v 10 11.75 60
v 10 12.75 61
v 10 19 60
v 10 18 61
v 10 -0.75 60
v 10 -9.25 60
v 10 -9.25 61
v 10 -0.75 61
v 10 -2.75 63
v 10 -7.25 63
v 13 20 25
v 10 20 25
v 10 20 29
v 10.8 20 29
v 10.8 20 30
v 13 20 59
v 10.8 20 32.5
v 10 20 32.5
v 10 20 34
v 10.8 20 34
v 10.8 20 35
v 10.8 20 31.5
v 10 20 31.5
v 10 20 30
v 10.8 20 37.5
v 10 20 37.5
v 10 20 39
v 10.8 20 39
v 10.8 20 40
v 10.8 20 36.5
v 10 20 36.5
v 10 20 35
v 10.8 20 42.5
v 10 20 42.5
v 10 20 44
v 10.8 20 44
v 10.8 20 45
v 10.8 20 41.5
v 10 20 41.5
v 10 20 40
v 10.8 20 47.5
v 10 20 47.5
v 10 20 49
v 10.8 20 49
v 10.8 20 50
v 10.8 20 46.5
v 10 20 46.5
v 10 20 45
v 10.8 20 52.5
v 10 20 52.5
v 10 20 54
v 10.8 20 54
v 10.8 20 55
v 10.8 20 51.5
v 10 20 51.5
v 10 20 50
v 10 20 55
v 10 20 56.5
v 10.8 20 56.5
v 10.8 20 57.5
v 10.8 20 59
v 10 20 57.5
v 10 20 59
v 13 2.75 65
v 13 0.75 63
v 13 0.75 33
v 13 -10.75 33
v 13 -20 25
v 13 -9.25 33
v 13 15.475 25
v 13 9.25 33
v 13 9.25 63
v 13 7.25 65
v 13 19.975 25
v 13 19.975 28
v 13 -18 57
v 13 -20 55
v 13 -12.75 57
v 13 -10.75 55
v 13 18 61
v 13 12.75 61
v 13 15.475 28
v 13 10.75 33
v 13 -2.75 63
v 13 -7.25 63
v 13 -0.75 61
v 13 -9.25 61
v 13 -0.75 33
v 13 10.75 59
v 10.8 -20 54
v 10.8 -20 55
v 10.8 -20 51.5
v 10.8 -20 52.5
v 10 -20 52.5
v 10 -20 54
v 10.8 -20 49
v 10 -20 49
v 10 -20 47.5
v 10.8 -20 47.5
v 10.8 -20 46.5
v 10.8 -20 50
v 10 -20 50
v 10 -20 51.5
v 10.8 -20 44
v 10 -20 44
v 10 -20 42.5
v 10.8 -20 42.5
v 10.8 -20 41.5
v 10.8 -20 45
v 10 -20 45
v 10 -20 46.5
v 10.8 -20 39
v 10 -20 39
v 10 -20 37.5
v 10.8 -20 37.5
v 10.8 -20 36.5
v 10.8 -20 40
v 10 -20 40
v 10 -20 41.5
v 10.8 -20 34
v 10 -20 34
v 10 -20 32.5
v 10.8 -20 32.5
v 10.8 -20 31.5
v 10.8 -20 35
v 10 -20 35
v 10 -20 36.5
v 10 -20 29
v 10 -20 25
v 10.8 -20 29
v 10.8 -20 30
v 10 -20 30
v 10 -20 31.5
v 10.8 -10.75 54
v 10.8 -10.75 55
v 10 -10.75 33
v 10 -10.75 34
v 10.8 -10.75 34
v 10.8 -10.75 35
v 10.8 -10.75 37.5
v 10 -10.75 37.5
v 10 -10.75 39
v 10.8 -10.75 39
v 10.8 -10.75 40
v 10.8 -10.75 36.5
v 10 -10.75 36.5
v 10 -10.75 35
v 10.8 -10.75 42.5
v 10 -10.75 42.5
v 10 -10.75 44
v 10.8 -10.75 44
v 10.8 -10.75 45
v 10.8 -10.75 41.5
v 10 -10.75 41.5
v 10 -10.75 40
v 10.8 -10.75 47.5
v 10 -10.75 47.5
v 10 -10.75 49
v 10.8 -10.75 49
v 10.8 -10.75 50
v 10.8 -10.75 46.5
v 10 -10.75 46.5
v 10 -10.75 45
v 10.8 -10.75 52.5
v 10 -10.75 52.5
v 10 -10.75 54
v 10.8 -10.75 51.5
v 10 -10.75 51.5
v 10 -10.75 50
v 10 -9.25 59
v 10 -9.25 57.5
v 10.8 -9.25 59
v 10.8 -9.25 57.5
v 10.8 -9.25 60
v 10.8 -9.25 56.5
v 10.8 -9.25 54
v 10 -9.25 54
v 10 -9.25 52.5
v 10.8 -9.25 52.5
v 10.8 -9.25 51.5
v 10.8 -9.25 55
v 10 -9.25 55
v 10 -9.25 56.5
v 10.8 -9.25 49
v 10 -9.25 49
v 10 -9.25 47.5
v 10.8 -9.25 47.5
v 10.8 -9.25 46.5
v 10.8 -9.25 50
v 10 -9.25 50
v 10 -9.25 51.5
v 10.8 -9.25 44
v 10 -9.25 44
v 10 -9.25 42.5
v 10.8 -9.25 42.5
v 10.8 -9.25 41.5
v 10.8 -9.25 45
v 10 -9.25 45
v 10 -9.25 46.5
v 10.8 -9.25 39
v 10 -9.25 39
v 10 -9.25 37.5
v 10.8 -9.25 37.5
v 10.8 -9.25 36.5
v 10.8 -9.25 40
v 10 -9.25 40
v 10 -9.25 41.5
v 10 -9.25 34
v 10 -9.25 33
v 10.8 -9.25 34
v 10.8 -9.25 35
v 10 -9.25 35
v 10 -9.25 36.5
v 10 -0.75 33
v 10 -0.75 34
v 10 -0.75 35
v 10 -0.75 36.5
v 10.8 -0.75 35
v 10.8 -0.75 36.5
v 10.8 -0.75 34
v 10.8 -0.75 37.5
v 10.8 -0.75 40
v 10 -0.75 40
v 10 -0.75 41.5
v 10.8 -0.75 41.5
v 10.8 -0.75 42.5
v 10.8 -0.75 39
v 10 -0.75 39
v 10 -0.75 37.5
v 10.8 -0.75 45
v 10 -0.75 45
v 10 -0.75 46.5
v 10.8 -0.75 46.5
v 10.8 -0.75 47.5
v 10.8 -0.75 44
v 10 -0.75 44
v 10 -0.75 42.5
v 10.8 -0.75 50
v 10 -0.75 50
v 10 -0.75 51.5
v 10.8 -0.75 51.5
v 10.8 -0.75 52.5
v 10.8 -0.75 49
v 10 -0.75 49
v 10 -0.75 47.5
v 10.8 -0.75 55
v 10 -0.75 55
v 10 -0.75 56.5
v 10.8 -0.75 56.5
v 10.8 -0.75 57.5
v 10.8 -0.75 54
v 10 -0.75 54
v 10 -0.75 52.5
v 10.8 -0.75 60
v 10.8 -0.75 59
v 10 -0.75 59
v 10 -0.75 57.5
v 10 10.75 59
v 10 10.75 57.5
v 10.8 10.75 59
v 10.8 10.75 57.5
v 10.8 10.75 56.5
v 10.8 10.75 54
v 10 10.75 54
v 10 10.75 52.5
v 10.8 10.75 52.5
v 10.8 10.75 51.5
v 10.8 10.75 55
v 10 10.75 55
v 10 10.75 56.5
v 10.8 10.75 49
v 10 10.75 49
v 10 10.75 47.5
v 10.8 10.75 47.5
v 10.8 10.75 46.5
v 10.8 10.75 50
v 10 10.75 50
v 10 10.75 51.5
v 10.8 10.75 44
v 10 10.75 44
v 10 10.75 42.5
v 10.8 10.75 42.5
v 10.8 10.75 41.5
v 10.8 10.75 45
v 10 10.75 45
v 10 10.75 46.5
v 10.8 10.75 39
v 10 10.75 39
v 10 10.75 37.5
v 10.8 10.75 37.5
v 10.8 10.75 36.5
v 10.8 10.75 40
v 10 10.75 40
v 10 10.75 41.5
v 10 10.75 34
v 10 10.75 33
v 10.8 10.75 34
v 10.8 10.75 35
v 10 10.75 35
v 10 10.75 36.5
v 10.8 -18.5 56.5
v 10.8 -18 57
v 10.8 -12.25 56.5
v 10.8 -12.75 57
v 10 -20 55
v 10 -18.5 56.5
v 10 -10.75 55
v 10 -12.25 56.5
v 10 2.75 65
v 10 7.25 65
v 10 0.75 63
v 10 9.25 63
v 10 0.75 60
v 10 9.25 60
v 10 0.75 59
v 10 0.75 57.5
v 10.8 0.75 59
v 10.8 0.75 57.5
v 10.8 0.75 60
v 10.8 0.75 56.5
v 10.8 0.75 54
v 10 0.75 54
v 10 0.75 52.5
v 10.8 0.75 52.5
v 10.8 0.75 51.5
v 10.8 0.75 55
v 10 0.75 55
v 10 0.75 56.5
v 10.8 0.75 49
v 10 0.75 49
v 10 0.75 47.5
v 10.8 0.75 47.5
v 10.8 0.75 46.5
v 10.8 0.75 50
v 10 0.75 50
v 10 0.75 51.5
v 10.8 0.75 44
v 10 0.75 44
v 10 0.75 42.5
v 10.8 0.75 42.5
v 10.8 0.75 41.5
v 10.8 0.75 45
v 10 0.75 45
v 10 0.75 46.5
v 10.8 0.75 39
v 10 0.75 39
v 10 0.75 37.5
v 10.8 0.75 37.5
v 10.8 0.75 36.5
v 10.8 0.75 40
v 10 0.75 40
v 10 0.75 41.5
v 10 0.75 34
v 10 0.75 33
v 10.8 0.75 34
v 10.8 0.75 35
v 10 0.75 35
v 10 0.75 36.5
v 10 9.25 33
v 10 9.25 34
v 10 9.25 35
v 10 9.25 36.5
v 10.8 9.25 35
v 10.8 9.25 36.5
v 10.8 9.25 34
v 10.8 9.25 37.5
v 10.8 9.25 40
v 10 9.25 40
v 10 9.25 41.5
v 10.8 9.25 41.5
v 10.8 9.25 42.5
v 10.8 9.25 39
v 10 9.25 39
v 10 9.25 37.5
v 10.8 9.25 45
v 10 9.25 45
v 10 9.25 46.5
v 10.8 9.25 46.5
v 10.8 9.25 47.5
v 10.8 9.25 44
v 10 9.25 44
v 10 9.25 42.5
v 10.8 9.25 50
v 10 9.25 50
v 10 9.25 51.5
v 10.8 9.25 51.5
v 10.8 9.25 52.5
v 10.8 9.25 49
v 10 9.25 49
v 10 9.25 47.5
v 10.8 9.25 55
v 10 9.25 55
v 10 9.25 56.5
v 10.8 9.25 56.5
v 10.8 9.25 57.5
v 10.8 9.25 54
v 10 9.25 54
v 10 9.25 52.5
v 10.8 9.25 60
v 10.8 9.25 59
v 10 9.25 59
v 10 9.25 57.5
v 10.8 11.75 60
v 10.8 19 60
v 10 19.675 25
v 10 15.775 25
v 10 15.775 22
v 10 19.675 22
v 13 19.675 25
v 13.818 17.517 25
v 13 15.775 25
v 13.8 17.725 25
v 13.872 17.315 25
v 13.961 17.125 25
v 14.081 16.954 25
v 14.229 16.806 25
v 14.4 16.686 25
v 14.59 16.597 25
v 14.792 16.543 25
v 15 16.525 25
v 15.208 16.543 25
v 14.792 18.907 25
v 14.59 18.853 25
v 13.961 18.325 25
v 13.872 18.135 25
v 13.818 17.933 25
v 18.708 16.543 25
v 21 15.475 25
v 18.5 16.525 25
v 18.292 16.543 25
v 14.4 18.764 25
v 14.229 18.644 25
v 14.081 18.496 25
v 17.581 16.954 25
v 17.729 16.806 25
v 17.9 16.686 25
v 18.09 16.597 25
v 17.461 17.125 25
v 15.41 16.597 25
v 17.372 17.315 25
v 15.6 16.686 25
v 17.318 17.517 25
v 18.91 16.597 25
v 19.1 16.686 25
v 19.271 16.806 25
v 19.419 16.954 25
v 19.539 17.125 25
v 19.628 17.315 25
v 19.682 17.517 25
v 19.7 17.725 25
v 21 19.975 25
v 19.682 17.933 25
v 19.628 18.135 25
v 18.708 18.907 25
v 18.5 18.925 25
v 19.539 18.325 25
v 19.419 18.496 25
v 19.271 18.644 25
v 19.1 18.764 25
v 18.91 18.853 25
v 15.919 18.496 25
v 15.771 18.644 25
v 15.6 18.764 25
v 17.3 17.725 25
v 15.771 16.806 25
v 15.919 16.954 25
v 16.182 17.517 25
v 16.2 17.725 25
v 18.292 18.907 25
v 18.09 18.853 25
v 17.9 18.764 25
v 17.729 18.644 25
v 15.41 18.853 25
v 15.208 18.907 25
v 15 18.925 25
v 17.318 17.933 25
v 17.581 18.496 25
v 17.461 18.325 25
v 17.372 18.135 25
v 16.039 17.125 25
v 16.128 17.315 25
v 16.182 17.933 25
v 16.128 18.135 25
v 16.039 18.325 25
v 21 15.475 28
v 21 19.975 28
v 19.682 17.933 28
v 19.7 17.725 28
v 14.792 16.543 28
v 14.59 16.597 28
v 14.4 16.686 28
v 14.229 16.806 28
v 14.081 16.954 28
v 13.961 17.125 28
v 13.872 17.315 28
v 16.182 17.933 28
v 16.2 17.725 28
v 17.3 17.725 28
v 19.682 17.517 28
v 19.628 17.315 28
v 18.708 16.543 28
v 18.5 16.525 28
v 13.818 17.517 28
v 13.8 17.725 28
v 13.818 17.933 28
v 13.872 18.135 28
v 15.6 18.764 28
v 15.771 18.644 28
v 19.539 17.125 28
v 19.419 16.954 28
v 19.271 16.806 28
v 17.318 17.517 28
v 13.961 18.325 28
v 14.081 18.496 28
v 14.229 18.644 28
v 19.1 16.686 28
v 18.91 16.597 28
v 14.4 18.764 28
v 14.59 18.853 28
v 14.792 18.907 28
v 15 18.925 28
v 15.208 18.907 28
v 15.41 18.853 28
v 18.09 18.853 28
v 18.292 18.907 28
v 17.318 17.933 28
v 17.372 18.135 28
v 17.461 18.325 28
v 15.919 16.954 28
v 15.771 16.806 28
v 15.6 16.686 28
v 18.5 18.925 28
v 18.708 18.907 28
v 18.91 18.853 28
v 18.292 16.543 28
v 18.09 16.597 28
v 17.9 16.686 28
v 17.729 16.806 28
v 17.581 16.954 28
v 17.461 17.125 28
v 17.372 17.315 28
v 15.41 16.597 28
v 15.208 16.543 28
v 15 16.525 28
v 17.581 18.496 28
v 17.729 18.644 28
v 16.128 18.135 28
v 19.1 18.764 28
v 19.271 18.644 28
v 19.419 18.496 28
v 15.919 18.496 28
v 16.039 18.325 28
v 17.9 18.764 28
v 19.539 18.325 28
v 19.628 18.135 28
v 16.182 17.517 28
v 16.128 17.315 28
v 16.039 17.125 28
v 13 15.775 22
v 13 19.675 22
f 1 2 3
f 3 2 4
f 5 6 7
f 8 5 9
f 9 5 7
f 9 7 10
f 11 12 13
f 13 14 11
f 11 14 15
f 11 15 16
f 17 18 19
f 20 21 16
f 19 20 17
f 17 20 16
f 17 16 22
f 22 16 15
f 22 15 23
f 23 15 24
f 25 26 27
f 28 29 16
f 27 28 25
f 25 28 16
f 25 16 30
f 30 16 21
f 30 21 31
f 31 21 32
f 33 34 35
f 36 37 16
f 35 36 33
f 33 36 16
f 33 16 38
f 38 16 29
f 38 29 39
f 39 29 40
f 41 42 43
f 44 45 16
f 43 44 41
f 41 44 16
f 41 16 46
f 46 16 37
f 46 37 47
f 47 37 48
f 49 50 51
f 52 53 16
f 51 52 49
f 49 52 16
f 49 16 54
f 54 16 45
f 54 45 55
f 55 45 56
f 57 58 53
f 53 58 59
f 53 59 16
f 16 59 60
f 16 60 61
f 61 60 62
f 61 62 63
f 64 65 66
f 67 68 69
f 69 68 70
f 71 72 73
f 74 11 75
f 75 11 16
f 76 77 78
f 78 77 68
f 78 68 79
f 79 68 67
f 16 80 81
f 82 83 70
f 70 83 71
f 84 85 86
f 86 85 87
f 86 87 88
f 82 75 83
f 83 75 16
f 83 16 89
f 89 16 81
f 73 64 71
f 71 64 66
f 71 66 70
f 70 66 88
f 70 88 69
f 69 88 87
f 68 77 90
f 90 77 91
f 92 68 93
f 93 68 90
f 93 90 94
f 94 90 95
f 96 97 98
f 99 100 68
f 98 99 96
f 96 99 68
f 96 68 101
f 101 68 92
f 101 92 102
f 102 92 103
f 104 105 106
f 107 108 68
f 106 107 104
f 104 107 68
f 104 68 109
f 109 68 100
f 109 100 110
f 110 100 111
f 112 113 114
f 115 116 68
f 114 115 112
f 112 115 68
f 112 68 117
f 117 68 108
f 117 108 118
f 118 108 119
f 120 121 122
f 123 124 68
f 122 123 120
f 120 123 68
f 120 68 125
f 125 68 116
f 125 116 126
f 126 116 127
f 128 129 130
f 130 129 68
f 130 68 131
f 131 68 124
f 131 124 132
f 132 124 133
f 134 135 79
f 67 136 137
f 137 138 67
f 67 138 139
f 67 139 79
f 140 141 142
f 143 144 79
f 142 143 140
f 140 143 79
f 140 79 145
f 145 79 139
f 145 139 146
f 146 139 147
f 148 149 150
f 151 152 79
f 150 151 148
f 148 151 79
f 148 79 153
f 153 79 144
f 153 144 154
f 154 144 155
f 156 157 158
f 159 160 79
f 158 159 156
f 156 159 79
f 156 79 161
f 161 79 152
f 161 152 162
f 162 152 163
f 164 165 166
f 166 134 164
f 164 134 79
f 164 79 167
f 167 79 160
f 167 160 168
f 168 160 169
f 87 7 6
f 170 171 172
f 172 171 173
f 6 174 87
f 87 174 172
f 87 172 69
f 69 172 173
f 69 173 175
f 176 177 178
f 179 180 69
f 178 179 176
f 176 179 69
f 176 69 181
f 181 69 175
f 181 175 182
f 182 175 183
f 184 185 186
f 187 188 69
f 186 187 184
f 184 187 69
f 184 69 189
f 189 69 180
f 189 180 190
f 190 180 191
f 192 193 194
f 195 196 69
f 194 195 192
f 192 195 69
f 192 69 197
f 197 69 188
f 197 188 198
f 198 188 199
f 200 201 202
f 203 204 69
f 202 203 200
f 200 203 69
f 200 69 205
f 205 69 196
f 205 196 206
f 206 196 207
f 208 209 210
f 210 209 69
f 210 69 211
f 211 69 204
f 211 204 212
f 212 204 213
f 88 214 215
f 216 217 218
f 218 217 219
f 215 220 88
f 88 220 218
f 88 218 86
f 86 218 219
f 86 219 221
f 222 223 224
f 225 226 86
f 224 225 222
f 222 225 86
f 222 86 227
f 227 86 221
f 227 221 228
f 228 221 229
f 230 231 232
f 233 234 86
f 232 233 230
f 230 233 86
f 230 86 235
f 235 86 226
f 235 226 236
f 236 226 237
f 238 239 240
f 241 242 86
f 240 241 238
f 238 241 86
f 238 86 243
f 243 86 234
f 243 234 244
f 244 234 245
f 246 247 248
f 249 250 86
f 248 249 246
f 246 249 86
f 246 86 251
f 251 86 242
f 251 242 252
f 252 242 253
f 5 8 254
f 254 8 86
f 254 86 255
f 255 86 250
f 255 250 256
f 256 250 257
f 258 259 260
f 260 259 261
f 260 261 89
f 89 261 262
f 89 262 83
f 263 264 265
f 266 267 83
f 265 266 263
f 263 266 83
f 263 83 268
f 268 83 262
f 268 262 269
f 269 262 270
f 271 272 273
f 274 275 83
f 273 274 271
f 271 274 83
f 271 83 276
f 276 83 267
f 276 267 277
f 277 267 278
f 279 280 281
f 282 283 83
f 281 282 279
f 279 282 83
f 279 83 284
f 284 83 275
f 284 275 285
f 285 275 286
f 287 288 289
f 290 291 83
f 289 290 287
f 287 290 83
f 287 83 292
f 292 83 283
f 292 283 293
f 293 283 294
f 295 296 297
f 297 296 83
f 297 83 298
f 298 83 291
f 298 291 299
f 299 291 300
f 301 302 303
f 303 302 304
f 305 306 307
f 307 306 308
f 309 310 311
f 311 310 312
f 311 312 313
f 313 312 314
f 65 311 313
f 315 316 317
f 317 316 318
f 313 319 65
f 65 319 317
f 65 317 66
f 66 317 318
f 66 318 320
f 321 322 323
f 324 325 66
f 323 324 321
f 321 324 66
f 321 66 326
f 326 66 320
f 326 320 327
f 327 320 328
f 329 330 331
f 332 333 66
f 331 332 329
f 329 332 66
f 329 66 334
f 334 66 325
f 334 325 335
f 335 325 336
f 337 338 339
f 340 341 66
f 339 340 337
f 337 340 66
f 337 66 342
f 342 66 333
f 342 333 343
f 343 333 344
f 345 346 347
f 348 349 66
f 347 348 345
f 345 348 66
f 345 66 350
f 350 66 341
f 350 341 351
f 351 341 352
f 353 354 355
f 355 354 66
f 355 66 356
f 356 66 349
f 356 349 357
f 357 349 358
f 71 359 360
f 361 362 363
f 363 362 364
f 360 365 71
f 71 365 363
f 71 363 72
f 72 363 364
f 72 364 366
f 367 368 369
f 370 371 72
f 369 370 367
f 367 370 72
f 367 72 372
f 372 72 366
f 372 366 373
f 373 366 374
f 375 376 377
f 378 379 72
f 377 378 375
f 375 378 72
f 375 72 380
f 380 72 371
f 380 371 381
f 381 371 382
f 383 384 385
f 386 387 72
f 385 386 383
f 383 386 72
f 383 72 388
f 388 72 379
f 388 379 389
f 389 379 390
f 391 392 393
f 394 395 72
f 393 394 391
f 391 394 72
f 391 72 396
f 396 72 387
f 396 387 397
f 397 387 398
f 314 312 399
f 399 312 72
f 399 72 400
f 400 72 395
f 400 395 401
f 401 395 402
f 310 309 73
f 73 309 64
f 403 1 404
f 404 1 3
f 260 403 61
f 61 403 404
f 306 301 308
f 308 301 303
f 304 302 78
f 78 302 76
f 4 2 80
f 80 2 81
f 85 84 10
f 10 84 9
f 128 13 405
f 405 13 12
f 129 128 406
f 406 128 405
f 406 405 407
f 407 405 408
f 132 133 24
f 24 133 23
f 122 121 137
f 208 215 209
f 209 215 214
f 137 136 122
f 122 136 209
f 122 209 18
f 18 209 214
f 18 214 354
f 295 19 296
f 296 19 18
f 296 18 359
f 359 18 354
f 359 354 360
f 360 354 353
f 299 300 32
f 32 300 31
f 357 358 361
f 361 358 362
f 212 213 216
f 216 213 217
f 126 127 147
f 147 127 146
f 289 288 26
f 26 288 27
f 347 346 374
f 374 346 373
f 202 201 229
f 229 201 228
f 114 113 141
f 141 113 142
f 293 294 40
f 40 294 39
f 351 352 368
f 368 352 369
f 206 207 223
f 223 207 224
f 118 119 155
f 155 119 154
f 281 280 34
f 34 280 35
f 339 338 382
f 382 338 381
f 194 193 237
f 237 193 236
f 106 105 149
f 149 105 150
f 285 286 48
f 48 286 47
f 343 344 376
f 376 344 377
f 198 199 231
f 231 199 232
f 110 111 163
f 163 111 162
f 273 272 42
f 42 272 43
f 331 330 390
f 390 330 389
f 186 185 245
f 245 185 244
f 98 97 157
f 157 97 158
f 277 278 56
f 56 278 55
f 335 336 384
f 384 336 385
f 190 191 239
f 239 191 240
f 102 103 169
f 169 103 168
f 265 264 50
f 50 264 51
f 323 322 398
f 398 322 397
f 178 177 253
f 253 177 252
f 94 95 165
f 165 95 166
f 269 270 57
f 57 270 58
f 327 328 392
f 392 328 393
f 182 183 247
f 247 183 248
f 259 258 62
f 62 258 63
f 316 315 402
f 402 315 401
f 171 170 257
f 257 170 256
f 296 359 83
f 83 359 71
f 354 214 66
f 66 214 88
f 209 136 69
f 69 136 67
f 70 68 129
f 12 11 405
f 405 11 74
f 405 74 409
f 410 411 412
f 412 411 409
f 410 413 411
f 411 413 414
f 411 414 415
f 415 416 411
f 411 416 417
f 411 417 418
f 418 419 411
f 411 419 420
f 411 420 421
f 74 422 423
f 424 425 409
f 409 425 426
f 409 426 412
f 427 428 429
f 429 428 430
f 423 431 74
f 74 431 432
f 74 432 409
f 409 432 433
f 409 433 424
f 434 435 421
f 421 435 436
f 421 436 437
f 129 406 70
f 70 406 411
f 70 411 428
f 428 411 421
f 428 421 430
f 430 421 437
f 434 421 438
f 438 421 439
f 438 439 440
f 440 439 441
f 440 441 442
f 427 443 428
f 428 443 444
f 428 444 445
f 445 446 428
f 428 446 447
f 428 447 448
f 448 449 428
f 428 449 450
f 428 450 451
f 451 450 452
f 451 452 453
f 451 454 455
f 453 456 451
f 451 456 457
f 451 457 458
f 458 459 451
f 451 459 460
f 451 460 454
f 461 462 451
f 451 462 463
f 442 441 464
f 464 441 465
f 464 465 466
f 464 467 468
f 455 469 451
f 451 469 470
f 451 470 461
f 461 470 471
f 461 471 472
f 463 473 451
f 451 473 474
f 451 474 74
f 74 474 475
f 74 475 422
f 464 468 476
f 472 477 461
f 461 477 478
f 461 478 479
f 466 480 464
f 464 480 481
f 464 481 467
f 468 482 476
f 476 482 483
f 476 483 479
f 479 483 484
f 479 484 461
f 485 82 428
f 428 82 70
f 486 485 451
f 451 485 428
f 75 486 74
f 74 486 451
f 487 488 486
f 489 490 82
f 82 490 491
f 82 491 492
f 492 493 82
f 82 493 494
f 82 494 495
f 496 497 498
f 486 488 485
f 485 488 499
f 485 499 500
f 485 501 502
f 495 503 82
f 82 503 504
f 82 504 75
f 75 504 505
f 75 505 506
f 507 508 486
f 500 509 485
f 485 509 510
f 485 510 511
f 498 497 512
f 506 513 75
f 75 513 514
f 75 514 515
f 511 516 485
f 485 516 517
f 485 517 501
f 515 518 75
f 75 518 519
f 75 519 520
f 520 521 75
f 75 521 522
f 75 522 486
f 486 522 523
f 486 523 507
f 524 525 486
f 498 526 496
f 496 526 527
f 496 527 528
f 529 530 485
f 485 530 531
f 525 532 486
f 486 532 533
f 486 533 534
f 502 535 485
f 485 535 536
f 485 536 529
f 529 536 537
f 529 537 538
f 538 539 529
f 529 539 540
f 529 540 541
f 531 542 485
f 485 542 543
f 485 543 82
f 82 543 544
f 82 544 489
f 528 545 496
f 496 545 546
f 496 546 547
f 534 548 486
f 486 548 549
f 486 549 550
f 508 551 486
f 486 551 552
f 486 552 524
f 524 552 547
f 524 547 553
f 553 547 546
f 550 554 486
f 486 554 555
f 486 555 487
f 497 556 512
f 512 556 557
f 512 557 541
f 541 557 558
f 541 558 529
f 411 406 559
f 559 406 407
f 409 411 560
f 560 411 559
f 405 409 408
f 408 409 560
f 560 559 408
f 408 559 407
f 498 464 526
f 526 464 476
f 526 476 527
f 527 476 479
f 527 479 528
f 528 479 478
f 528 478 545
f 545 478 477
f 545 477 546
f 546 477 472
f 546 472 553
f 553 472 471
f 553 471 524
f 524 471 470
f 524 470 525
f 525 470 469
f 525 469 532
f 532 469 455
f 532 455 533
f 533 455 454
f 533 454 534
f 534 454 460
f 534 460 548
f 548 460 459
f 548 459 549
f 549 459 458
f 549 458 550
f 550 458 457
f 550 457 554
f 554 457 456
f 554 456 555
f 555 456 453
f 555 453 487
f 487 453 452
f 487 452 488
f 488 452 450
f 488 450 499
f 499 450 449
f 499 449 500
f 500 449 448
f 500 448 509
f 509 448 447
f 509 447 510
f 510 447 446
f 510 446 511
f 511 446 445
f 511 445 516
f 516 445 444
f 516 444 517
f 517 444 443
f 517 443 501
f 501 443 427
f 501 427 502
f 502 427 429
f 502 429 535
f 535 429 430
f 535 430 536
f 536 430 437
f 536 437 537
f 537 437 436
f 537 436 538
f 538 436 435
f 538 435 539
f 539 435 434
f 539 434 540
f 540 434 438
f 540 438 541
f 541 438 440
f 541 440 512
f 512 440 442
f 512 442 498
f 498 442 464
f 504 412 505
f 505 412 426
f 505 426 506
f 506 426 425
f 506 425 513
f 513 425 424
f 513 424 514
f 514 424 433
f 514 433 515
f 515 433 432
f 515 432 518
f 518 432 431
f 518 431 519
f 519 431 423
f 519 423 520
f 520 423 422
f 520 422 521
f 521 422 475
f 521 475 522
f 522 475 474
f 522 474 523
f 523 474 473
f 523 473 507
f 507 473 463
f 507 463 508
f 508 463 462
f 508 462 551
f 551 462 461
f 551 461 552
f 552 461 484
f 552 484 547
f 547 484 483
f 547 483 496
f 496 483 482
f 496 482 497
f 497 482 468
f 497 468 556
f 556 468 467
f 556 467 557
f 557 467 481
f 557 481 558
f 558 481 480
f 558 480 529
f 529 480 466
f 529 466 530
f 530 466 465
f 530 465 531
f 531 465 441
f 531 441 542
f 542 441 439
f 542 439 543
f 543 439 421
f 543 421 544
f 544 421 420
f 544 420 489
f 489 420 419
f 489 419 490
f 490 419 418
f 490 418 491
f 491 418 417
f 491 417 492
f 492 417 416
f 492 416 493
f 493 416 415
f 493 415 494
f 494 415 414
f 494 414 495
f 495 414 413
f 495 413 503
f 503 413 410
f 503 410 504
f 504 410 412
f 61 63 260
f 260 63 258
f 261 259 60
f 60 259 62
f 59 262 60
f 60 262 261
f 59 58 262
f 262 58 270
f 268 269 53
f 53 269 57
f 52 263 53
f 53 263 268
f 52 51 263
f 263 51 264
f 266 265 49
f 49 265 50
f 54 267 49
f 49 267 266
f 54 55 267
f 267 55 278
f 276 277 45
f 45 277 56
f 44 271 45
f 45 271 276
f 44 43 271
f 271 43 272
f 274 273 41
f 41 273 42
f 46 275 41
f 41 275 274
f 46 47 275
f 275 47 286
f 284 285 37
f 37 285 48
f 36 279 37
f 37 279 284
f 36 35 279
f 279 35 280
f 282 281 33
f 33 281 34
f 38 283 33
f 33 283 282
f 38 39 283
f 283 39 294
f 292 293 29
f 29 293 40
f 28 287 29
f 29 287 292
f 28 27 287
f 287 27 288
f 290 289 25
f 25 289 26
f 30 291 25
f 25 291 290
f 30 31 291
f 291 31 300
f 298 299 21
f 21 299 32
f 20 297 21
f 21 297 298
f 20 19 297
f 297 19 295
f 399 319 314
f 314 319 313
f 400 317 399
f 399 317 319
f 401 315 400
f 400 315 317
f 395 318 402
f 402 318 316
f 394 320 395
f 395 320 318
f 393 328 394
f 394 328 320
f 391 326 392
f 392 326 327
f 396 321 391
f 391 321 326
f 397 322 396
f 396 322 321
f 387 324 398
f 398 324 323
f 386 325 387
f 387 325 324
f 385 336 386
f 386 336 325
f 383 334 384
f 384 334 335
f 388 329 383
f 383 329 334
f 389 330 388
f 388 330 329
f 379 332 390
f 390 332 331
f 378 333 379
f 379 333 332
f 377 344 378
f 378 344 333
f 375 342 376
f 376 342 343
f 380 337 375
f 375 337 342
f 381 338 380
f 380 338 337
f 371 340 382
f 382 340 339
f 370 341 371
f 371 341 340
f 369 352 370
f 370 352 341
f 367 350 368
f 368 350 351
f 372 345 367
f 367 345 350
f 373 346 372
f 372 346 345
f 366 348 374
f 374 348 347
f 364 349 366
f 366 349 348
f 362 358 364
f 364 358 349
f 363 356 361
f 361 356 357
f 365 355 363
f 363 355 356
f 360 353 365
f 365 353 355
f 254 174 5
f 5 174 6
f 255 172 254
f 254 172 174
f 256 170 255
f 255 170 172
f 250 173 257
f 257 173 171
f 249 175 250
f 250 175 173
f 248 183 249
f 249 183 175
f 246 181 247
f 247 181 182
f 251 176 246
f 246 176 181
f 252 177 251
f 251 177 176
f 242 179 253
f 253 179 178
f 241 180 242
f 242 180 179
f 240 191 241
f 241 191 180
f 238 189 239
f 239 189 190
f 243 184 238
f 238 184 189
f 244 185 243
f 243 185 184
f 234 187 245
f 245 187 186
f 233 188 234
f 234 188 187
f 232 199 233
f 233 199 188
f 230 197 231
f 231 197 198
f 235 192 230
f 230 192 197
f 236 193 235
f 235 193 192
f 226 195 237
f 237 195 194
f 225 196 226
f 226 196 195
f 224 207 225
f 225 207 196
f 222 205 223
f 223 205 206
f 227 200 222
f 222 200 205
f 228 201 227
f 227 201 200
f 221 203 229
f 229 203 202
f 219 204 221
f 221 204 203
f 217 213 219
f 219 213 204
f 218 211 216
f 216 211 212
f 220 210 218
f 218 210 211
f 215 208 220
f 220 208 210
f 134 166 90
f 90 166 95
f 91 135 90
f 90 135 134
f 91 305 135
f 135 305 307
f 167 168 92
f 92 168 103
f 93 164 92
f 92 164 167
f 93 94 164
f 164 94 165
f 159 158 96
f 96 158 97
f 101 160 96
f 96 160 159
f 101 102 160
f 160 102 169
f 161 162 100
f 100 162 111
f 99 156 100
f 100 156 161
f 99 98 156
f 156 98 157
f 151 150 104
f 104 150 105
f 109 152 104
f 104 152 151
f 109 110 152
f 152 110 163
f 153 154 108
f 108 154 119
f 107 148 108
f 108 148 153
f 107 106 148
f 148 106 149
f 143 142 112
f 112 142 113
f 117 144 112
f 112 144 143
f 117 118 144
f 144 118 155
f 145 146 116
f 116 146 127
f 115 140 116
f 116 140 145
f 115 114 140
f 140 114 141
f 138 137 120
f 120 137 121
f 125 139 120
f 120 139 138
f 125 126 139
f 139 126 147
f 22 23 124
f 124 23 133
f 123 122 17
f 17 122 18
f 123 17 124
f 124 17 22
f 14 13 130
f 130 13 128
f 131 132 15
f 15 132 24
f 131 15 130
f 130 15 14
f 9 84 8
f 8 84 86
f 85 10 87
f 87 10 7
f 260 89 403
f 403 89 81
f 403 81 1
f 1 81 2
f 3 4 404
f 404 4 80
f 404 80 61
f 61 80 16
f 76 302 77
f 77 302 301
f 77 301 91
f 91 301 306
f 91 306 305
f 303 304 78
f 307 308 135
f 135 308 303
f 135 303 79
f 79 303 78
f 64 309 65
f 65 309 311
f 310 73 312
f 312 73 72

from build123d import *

# Parameters (mm, degrees)
BOSS_EXTRUDE1_START     = 25
SKETCH1_W               = 3
SKETCH1_H               = 40
BOSS_EXTRUDE1_DEPTH     = 8
BOSS_EXTRUDE2_START     = 32.5
SKETCH2_W               = 3
SKETCH2_H               = 9.25
SKETCH2_H_2             = 8.5
BOSS_EXTRUDE2_DEPTH     = 32.5
BOSS_EXTRUDE3_START     = 25
SKETCH3_W               = 8
SKETCH3_H               = 4.5
BOSS_EXTRUDE3_DEPTH     = 3
BOSS_EXTRUDE4_START     = 22
SKETCH4_W               = 3
SKETCH4_H               = 3.9
BOSS_EXTRUDE4_DEPTH     = 3
CUT_EXTRUDE1_DEPTH      = 72.175838597
CUT_EXTRUDE1_DEPTH_BACK = 72.175838597
SKETCH5_R               = 1.2
CUT_EXTRUDE2_DEPTH      = 72.175838597
CUT_EXTRUDE2_DEPTH_BACK = 72.175838597
SKETCH6_W               = 1.8
SKETCH6_H               = 1
CUT_EXTRUDE3_DEPTH      = 72.175838597
CUT_EXTRUDE3_DEPTH_BACK = 72.175838597
SKETCH7_W               = 9
SKETCH7_H               = 10.65
SKETCH7_W_2             = 7
SKETCH7_H_2             = 9.9
SKETCH7_W_3             = 13
CUT_EXTRUDE4_DEPTH      = 72.175838597
CUT_EXTRUDE4_DEPTH_BACK = 72.175838597


with BuildPart() as part:
    # Sketch1 → Boss-Extrude1 (new body)
    with BuildSketch(Plane.XY.offset(BOSS_EXTRUDE1_START)):
        with Locations((11.5, 0)):
            Rectangle(SKETCH1_W, SKETCH1_H)
    extrude(amount=BOSS_EXTRUDE1_DEPTH)

    # Sketch2 → Boss-Extrude2 (add)
    with BuildSketch(Plane.XY.offset(BOSS_EXTRUDE2_START)):
        with Locations((11.5, 15.375)):
            Rectangle(SKETCH2_W, SKETCH2_H)
        with Locations((11.5, 5)):
            Rectangle(SKETCH2_W, SKETCH2_H_2)
        with Locations((11.5, -5)):
            Rectangle(SKETCH2_W, SKETCH2_H_2)
        with Locations((11.5, -15.375)):
            Rectangle(SKETCH2_W, SKETCH2_H)
    extrude(amount=BOSS_EXTRUDE2_DEPTH)

    # Sketch3 → Boss-Extrude3 (add)
    with BuildSketch(Plane.XY.offset(BOSS_EXTRUDE3_START)):
        with Locations((17, 17.725)):
            Rectangle(SKETCH3_W, SKETCH3_H)
    extrude(amount=BOSS_EXTRUDE3_DEPTH)

    # Sketch4 → Boss-Extrude4 (add)
    with BuildSketch(Plane.XY.offset(BOSS_EXTRUDE4_START)):
        with Locations((11.5, 17.725)):
            Rectangle(SKETCH4_W, SKETCH4_H)
    extrude(amount=BOSS_EXTRUDE4_DEPTH)

    # Sketch5 → Cut-Extrude1 (cut, two sides: drawn at the far end of the back side and taken through both)
    with BuildSketch(Plane.XY.offset(-CUT_EXTRUDE1_DEPTH_BACK)):
        with Locations((15, 17.725)):
            Circle(SKETCH5_R)
        with Locations((18.5, 17.725)):
            Circle(SKETCH5_R)
    extrude(amount=CUT_EXTRUDE1_DEPTH + CUT_EXTRUDE1_DEPTH_BACK, mode=Mode.SUBTRACT)

    # Sketch6 → Cut-Extrude2 (cut, two sides: drawn at the far end of the back side and taken through both)
    with BuildSketch(Plane(origin=(0, 0, 0), x_dir=(1, 0, 0), z_dir=(0, 1, 0)).offset(-CUT_EXTRUDE2_DEPTH_BACK)):
        with Locations((9.9, -29.5)):
            Rectangle(SKETCH6_W, SKETCH6_H)
        with Locations((9.9, -32)):
            Rectangle(SKETCH6_W, SKETCH6_H)
        with Locations((9.9, -34.5)):
            Rectangle(SKETCH6_W, SKETCH6_H)
        with Locations((9.9, -37)):
            Rectangle(SKETCH6_W, SKETCH6_H)
        with Locations((9.9, -39.5)):
            Rectangle(SKETCH6_W, SKETCH6_H)
        with Locations((9.9, -42)):
            Rectangle(SKETCH6_W, SKETCH6_H)
        with Locations((9.9, -44.5)):
            Rectangle(SKETCH6_W, SKETCH6_H)
        with Locations((9.9, -47)):
            Rectangle(SKETCH6_W, SKETCH6_H)
        with Locations((9.9, -49.5)):
            Rectangle(SKETCH6_W, SKETCH6_H)
        with Locations((9.9, -52)):
            Rectangle(SKETCH6_W, SKETCH6_H)
        with Locations((9.9, -54.5)):
            Rectangle(SKETCH6_W, SKETCH6_H)
        with Locations((9.9, -57)):
            Rectangle(SKETCH6_W, SKETCH6_H)
        with Locations((9.9, -59.5)):
            Rectangle(SKETCH6_W, SKETCH6_H)
    extrude(amount=CUT_EXTRUDE2_DEPTH + CUT_EXTRUDE2_DEPTH_BACK, mode=Mode.SUBTRACT)

    # Sketch7 → Cut-Extrude3 (cut, two sides: drawn at the far end of the back side and taken through both)
    with BuildSketch(Plane(origin=(0, 0, 0), x_dir=(0, 0, -1), z_dir=(1, 0, 0)).offset(-CUT_EXTRUDE3_DEPTH_BACK)):
        with Locations((-65.5, 15.375)):
            Rectangle(SKETCH7_W, SKETCH7_H)
        with Locations((-66.5, -5)):
            Rectangle(SKETCH7_W_2, SKETCH7_H_2)
        with Locations((-63.5, -15.375)):
            Rectangle(SKETCH7_W_3, SKETCH7_H)
    extrude(amount=CUT_EXTRUDE3_DEPTH + CUT_EXTRUDE3_DEPTH_BACK, mode=Mode.SUBTRACT)

    # Sketch8 → Cut-Extrude4 (cut, two sides: drawn at the far end of the back side and taken through both)
    with BuildSketch(Plane(origin=(0, 0, 0), x_dir=(0, 0, -1), z_dir=(1, 0, 0)).offset(-CUT_EXTRUDE4_DEPTH_BACK)):
        Polygon((-58.3, 10.05), (-62, 10.05), (-62, 13.75), align=None)
        Polygon((-58.3, 20.7), (-62, 17), (-62, 20.7), align=None)
        Polygon((-62.3, 0.05), (-66, 0.05), (-66, 3.75), align=None)
        Polygon((-62.3, 9.95), (-66, 6.25), (-66, 9.95), align=None)
        Polygon((-60.3, -9.95), (-64, -9.95), (-64, -6.25), align=None)
        Polygon((-60.3, -0.05), (-64, -3.75), (-64, -0.05), align=None)
        Polygon((-54.3, -20.7), (-58, -20.7), (-58, -17), align=None)
        Polygon((-54.3, -10.05), (-58, -13.75), (-58, -10.05), align=None)
    extrude(amount=CUT_EXTRUDE4_DEPTH + CUT_EXTRUDE4_DEPTH_BACK, mode=Mode.SUBTRACT)


solid = part.part
